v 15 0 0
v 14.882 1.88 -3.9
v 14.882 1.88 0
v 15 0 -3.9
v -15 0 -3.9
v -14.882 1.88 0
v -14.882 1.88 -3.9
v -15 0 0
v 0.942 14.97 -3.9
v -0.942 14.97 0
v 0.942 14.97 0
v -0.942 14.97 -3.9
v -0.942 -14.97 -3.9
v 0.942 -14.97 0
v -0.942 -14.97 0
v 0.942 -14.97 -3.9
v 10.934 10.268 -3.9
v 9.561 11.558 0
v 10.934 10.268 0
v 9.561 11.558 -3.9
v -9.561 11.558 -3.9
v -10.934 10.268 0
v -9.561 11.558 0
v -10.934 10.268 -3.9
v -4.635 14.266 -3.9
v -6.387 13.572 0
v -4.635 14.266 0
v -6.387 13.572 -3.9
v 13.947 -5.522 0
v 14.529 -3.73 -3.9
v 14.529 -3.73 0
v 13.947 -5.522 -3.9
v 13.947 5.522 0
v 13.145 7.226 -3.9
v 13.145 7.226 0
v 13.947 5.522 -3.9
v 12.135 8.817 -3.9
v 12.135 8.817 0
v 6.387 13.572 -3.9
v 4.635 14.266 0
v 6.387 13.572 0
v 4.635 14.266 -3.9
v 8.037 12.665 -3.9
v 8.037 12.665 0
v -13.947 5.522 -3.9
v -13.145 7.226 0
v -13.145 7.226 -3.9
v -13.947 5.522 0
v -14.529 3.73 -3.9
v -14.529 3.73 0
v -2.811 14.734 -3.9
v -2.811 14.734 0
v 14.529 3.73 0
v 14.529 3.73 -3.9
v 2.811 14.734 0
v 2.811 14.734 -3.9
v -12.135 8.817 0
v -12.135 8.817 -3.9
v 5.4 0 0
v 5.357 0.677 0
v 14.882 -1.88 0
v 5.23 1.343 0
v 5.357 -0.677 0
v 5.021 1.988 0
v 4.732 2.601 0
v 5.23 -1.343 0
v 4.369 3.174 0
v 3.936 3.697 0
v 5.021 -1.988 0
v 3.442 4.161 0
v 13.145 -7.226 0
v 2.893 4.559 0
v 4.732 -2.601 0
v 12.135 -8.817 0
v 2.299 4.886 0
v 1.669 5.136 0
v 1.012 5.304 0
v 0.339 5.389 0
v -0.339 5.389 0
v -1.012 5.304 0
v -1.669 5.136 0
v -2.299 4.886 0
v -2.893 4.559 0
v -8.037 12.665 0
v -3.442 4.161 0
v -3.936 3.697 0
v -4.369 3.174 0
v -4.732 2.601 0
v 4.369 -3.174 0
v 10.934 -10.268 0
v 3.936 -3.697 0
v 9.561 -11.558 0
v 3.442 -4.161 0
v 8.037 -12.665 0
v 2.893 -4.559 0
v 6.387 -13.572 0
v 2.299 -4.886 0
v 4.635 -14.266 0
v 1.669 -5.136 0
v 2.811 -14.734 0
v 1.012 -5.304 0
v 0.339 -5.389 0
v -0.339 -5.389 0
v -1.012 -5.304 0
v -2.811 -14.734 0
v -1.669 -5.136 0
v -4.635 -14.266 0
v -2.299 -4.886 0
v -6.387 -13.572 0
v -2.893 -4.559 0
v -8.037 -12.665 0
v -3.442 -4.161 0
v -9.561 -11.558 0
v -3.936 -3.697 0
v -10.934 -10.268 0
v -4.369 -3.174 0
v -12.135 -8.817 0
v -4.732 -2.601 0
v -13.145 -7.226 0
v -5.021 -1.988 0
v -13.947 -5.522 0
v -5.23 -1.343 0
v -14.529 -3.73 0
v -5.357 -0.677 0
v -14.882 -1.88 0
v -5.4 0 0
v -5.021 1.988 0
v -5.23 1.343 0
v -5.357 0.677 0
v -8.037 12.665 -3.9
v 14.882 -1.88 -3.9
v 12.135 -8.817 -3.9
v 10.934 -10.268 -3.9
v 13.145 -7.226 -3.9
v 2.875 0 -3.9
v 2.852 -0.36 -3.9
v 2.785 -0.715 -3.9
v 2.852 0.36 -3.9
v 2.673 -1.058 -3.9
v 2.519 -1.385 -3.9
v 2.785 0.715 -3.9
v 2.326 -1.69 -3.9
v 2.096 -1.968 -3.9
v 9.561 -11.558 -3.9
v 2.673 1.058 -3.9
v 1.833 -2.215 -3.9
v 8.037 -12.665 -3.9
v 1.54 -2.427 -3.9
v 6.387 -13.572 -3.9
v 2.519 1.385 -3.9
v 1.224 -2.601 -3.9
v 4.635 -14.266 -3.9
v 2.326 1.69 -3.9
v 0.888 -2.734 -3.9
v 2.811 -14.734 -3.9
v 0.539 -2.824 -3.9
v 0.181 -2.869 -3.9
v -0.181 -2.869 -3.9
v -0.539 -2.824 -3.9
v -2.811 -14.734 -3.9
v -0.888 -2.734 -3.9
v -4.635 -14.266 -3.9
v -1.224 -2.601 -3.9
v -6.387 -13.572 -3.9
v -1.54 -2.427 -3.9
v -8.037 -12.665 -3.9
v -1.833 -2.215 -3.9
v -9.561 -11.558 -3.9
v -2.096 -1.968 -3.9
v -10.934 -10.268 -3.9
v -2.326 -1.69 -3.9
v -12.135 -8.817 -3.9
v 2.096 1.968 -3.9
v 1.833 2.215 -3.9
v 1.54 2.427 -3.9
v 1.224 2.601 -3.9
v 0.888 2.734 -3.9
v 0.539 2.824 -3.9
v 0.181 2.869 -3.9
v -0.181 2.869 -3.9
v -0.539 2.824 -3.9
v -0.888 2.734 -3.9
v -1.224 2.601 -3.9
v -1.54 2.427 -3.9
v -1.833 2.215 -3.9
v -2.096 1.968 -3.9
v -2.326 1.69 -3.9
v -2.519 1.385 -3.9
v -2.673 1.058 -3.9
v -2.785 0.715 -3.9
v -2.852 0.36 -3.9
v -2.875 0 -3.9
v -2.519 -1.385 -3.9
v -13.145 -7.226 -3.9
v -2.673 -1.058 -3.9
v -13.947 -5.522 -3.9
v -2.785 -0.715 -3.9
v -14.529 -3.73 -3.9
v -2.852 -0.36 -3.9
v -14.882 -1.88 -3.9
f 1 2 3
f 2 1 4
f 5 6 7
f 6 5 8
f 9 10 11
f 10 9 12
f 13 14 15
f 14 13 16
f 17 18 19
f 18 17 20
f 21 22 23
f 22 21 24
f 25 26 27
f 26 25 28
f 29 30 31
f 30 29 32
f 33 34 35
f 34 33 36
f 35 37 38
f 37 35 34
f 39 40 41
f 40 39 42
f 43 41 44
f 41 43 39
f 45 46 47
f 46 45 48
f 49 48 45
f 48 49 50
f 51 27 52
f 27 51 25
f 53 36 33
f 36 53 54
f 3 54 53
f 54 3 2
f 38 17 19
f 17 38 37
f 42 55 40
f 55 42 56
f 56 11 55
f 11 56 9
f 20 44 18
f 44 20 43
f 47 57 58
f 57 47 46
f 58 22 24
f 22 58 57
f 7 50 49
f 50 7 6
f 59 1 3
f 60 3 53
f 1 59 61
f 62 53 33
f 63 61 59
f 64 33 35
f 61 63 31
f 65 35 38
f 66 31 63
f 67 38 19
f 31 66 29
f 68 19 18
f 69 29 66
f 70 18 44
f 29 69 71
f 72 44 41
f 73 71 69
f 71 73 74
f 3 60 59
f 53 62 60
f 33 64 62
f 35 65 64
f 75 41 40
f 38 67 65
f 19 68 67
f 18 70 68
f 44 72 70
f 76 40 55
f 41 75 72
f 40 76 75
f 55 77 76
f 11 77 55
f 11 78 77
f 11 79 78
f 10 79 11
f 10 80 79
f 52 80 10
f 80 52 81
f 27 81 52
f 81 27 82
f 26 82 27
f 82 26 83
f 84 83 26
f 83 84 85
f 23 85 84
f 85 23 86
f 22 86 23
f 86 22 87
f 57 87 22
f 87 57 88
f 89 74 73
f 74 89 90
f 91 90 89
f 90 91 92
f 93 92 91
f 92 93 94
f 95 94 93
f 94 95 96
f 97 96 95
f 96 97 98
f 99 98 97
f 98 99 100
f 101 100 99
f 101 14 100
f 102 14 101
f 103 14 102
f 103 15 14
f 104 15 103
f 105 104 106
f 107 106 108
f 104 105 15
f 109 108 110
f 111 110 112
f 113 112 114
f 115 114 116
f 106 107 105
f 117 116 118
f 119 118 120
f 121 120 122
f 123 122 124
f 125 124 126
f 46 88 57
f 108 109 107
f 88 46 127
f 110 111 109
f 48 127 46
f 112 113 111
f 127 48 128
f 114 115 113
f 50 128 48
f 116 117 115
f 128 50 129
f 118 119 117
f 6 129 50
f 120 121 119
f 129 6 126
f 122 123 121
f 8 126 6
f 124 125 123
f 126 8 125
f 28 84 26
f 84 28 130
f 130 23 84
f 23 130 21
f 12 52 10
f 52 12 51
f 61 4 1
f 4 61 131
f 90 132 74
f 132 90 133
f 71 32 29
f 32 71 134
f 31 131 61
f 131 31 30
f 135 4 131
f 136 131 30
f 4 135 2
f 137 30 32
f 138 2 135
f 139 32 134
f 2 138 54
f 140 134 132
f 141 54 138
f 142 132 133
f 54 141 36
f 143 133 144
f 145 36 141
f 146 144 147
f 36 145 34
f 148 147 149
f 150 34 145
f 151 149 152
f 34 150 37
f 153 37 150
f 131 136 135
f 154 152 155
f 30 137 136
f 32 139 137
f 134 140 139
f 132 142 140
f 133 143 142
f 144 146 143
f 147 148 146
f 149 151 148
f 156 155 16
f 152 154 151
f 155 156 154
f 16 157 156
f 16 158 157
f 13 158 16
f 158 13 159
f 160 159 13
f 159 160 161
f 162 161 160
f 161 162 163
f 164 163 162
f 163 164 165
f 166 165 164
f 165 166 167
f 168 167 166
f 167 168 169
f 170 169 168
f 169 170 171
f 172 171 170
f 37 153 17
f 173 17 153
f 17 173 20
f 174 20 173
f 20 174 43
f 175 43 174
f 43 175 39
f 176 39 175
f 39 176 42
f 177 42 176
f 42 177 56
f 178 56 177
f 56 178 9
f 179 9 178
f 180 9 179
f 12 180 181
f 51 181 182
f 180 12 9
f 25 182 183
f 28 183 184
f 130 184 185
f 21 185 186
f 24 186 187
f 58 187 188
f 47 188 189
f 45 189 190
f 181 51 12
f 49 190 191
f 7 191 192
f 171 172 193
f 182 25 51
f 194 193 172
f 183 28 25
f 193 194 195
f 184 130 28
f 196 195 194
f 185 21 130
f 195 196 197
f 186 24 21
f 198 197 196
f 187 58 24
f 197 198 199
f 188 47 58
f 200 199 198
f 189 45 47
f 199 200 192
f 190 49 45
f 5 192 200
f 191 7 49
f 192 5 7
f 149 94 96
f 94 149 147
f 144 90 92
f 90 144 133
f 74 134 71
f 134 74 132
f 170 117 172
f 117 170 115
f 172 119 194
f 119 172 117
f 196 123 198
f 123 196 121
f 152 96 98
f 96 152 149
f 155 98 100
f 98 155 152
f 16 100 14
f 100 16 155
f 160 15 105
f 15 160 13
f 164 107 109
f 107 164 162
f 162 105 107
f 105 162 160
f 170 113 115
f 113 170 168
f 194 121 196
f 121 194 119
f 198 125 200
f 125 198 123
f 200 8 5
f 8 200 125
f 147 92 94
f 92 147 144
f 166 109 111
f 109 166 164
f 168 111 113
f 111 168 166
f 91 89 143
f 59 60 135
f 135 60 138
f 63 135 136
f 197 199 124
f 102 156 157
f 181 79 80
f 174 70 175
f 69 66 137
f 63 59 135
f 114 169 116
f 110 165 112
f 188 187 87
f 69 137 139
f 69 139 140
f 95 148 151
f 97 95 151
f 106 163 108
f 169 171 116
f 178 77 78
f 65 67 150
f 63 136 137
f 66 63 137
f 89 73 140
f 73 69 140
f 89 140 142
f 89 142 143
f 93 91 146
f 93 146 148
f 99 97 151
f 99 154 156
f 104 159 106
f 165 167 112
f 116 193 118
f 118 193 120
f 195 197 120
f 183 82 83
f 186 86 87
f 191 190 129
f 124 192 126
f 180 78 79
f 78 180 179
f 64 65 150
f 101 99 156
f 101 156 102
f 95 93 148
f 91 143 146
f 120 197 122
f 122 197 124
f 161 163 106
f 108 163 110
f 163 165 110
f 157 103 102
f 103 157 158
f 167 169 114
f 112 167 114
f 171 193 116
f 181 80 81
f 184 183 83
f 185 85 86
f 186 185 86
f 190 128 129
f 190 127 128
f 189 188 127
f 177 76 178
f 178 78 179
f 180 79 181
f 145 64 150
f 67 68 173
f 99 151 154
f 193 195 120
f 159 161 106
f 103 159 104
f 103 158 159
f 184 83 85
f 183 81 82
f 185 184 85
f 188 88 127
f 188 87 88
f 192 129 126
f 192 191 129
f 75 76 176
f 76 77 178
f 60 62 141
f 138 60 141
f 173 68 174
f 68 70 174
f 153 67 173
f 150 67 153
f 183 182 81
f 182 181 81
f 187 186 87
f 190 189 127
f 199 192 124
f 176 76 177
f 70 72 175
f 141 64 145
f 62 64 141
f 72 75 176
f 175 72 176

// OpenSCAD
$fn = 50;


difference() {
	union() {
		translate(v = [0, 0, -3.9000000000]) {
			cylinder(h = 3.9000000000, r = 15.0000000000);
		}
		translate(v = [0, 0, -3.9000000000]) {
			cylinder(h = 3.9000000000, r = 2.8750000000);
		}
	}
	union() {
		translate(v = [0, 0, 0]) {
			rotate(a = [0, 0, 0]) {
				difference() {
					union() {
						#translate(v = [0, 0, -3.9000000000]) {
							cylinder(h = 3.9000000000, r = 2.6000000000);
						}
						#translate(v = [0, 0, -3.9000000000]) {
							cylinder(h = 3.9000000000, r1 = 2.8750000000, r2 = 5.4000000000);
						}
						#translate(v = [0, 0, -3.9000000000]) {
							cylinder(h = 3.9000000000, r = 2.8750000000);
						}
						#translate(v = [0, 0, -3.9000000000]) {
							cylinder(h = 3.9000000000, r = 2.6000000000);
						}
					}
					union();
				}
			}
		}
	}
}
